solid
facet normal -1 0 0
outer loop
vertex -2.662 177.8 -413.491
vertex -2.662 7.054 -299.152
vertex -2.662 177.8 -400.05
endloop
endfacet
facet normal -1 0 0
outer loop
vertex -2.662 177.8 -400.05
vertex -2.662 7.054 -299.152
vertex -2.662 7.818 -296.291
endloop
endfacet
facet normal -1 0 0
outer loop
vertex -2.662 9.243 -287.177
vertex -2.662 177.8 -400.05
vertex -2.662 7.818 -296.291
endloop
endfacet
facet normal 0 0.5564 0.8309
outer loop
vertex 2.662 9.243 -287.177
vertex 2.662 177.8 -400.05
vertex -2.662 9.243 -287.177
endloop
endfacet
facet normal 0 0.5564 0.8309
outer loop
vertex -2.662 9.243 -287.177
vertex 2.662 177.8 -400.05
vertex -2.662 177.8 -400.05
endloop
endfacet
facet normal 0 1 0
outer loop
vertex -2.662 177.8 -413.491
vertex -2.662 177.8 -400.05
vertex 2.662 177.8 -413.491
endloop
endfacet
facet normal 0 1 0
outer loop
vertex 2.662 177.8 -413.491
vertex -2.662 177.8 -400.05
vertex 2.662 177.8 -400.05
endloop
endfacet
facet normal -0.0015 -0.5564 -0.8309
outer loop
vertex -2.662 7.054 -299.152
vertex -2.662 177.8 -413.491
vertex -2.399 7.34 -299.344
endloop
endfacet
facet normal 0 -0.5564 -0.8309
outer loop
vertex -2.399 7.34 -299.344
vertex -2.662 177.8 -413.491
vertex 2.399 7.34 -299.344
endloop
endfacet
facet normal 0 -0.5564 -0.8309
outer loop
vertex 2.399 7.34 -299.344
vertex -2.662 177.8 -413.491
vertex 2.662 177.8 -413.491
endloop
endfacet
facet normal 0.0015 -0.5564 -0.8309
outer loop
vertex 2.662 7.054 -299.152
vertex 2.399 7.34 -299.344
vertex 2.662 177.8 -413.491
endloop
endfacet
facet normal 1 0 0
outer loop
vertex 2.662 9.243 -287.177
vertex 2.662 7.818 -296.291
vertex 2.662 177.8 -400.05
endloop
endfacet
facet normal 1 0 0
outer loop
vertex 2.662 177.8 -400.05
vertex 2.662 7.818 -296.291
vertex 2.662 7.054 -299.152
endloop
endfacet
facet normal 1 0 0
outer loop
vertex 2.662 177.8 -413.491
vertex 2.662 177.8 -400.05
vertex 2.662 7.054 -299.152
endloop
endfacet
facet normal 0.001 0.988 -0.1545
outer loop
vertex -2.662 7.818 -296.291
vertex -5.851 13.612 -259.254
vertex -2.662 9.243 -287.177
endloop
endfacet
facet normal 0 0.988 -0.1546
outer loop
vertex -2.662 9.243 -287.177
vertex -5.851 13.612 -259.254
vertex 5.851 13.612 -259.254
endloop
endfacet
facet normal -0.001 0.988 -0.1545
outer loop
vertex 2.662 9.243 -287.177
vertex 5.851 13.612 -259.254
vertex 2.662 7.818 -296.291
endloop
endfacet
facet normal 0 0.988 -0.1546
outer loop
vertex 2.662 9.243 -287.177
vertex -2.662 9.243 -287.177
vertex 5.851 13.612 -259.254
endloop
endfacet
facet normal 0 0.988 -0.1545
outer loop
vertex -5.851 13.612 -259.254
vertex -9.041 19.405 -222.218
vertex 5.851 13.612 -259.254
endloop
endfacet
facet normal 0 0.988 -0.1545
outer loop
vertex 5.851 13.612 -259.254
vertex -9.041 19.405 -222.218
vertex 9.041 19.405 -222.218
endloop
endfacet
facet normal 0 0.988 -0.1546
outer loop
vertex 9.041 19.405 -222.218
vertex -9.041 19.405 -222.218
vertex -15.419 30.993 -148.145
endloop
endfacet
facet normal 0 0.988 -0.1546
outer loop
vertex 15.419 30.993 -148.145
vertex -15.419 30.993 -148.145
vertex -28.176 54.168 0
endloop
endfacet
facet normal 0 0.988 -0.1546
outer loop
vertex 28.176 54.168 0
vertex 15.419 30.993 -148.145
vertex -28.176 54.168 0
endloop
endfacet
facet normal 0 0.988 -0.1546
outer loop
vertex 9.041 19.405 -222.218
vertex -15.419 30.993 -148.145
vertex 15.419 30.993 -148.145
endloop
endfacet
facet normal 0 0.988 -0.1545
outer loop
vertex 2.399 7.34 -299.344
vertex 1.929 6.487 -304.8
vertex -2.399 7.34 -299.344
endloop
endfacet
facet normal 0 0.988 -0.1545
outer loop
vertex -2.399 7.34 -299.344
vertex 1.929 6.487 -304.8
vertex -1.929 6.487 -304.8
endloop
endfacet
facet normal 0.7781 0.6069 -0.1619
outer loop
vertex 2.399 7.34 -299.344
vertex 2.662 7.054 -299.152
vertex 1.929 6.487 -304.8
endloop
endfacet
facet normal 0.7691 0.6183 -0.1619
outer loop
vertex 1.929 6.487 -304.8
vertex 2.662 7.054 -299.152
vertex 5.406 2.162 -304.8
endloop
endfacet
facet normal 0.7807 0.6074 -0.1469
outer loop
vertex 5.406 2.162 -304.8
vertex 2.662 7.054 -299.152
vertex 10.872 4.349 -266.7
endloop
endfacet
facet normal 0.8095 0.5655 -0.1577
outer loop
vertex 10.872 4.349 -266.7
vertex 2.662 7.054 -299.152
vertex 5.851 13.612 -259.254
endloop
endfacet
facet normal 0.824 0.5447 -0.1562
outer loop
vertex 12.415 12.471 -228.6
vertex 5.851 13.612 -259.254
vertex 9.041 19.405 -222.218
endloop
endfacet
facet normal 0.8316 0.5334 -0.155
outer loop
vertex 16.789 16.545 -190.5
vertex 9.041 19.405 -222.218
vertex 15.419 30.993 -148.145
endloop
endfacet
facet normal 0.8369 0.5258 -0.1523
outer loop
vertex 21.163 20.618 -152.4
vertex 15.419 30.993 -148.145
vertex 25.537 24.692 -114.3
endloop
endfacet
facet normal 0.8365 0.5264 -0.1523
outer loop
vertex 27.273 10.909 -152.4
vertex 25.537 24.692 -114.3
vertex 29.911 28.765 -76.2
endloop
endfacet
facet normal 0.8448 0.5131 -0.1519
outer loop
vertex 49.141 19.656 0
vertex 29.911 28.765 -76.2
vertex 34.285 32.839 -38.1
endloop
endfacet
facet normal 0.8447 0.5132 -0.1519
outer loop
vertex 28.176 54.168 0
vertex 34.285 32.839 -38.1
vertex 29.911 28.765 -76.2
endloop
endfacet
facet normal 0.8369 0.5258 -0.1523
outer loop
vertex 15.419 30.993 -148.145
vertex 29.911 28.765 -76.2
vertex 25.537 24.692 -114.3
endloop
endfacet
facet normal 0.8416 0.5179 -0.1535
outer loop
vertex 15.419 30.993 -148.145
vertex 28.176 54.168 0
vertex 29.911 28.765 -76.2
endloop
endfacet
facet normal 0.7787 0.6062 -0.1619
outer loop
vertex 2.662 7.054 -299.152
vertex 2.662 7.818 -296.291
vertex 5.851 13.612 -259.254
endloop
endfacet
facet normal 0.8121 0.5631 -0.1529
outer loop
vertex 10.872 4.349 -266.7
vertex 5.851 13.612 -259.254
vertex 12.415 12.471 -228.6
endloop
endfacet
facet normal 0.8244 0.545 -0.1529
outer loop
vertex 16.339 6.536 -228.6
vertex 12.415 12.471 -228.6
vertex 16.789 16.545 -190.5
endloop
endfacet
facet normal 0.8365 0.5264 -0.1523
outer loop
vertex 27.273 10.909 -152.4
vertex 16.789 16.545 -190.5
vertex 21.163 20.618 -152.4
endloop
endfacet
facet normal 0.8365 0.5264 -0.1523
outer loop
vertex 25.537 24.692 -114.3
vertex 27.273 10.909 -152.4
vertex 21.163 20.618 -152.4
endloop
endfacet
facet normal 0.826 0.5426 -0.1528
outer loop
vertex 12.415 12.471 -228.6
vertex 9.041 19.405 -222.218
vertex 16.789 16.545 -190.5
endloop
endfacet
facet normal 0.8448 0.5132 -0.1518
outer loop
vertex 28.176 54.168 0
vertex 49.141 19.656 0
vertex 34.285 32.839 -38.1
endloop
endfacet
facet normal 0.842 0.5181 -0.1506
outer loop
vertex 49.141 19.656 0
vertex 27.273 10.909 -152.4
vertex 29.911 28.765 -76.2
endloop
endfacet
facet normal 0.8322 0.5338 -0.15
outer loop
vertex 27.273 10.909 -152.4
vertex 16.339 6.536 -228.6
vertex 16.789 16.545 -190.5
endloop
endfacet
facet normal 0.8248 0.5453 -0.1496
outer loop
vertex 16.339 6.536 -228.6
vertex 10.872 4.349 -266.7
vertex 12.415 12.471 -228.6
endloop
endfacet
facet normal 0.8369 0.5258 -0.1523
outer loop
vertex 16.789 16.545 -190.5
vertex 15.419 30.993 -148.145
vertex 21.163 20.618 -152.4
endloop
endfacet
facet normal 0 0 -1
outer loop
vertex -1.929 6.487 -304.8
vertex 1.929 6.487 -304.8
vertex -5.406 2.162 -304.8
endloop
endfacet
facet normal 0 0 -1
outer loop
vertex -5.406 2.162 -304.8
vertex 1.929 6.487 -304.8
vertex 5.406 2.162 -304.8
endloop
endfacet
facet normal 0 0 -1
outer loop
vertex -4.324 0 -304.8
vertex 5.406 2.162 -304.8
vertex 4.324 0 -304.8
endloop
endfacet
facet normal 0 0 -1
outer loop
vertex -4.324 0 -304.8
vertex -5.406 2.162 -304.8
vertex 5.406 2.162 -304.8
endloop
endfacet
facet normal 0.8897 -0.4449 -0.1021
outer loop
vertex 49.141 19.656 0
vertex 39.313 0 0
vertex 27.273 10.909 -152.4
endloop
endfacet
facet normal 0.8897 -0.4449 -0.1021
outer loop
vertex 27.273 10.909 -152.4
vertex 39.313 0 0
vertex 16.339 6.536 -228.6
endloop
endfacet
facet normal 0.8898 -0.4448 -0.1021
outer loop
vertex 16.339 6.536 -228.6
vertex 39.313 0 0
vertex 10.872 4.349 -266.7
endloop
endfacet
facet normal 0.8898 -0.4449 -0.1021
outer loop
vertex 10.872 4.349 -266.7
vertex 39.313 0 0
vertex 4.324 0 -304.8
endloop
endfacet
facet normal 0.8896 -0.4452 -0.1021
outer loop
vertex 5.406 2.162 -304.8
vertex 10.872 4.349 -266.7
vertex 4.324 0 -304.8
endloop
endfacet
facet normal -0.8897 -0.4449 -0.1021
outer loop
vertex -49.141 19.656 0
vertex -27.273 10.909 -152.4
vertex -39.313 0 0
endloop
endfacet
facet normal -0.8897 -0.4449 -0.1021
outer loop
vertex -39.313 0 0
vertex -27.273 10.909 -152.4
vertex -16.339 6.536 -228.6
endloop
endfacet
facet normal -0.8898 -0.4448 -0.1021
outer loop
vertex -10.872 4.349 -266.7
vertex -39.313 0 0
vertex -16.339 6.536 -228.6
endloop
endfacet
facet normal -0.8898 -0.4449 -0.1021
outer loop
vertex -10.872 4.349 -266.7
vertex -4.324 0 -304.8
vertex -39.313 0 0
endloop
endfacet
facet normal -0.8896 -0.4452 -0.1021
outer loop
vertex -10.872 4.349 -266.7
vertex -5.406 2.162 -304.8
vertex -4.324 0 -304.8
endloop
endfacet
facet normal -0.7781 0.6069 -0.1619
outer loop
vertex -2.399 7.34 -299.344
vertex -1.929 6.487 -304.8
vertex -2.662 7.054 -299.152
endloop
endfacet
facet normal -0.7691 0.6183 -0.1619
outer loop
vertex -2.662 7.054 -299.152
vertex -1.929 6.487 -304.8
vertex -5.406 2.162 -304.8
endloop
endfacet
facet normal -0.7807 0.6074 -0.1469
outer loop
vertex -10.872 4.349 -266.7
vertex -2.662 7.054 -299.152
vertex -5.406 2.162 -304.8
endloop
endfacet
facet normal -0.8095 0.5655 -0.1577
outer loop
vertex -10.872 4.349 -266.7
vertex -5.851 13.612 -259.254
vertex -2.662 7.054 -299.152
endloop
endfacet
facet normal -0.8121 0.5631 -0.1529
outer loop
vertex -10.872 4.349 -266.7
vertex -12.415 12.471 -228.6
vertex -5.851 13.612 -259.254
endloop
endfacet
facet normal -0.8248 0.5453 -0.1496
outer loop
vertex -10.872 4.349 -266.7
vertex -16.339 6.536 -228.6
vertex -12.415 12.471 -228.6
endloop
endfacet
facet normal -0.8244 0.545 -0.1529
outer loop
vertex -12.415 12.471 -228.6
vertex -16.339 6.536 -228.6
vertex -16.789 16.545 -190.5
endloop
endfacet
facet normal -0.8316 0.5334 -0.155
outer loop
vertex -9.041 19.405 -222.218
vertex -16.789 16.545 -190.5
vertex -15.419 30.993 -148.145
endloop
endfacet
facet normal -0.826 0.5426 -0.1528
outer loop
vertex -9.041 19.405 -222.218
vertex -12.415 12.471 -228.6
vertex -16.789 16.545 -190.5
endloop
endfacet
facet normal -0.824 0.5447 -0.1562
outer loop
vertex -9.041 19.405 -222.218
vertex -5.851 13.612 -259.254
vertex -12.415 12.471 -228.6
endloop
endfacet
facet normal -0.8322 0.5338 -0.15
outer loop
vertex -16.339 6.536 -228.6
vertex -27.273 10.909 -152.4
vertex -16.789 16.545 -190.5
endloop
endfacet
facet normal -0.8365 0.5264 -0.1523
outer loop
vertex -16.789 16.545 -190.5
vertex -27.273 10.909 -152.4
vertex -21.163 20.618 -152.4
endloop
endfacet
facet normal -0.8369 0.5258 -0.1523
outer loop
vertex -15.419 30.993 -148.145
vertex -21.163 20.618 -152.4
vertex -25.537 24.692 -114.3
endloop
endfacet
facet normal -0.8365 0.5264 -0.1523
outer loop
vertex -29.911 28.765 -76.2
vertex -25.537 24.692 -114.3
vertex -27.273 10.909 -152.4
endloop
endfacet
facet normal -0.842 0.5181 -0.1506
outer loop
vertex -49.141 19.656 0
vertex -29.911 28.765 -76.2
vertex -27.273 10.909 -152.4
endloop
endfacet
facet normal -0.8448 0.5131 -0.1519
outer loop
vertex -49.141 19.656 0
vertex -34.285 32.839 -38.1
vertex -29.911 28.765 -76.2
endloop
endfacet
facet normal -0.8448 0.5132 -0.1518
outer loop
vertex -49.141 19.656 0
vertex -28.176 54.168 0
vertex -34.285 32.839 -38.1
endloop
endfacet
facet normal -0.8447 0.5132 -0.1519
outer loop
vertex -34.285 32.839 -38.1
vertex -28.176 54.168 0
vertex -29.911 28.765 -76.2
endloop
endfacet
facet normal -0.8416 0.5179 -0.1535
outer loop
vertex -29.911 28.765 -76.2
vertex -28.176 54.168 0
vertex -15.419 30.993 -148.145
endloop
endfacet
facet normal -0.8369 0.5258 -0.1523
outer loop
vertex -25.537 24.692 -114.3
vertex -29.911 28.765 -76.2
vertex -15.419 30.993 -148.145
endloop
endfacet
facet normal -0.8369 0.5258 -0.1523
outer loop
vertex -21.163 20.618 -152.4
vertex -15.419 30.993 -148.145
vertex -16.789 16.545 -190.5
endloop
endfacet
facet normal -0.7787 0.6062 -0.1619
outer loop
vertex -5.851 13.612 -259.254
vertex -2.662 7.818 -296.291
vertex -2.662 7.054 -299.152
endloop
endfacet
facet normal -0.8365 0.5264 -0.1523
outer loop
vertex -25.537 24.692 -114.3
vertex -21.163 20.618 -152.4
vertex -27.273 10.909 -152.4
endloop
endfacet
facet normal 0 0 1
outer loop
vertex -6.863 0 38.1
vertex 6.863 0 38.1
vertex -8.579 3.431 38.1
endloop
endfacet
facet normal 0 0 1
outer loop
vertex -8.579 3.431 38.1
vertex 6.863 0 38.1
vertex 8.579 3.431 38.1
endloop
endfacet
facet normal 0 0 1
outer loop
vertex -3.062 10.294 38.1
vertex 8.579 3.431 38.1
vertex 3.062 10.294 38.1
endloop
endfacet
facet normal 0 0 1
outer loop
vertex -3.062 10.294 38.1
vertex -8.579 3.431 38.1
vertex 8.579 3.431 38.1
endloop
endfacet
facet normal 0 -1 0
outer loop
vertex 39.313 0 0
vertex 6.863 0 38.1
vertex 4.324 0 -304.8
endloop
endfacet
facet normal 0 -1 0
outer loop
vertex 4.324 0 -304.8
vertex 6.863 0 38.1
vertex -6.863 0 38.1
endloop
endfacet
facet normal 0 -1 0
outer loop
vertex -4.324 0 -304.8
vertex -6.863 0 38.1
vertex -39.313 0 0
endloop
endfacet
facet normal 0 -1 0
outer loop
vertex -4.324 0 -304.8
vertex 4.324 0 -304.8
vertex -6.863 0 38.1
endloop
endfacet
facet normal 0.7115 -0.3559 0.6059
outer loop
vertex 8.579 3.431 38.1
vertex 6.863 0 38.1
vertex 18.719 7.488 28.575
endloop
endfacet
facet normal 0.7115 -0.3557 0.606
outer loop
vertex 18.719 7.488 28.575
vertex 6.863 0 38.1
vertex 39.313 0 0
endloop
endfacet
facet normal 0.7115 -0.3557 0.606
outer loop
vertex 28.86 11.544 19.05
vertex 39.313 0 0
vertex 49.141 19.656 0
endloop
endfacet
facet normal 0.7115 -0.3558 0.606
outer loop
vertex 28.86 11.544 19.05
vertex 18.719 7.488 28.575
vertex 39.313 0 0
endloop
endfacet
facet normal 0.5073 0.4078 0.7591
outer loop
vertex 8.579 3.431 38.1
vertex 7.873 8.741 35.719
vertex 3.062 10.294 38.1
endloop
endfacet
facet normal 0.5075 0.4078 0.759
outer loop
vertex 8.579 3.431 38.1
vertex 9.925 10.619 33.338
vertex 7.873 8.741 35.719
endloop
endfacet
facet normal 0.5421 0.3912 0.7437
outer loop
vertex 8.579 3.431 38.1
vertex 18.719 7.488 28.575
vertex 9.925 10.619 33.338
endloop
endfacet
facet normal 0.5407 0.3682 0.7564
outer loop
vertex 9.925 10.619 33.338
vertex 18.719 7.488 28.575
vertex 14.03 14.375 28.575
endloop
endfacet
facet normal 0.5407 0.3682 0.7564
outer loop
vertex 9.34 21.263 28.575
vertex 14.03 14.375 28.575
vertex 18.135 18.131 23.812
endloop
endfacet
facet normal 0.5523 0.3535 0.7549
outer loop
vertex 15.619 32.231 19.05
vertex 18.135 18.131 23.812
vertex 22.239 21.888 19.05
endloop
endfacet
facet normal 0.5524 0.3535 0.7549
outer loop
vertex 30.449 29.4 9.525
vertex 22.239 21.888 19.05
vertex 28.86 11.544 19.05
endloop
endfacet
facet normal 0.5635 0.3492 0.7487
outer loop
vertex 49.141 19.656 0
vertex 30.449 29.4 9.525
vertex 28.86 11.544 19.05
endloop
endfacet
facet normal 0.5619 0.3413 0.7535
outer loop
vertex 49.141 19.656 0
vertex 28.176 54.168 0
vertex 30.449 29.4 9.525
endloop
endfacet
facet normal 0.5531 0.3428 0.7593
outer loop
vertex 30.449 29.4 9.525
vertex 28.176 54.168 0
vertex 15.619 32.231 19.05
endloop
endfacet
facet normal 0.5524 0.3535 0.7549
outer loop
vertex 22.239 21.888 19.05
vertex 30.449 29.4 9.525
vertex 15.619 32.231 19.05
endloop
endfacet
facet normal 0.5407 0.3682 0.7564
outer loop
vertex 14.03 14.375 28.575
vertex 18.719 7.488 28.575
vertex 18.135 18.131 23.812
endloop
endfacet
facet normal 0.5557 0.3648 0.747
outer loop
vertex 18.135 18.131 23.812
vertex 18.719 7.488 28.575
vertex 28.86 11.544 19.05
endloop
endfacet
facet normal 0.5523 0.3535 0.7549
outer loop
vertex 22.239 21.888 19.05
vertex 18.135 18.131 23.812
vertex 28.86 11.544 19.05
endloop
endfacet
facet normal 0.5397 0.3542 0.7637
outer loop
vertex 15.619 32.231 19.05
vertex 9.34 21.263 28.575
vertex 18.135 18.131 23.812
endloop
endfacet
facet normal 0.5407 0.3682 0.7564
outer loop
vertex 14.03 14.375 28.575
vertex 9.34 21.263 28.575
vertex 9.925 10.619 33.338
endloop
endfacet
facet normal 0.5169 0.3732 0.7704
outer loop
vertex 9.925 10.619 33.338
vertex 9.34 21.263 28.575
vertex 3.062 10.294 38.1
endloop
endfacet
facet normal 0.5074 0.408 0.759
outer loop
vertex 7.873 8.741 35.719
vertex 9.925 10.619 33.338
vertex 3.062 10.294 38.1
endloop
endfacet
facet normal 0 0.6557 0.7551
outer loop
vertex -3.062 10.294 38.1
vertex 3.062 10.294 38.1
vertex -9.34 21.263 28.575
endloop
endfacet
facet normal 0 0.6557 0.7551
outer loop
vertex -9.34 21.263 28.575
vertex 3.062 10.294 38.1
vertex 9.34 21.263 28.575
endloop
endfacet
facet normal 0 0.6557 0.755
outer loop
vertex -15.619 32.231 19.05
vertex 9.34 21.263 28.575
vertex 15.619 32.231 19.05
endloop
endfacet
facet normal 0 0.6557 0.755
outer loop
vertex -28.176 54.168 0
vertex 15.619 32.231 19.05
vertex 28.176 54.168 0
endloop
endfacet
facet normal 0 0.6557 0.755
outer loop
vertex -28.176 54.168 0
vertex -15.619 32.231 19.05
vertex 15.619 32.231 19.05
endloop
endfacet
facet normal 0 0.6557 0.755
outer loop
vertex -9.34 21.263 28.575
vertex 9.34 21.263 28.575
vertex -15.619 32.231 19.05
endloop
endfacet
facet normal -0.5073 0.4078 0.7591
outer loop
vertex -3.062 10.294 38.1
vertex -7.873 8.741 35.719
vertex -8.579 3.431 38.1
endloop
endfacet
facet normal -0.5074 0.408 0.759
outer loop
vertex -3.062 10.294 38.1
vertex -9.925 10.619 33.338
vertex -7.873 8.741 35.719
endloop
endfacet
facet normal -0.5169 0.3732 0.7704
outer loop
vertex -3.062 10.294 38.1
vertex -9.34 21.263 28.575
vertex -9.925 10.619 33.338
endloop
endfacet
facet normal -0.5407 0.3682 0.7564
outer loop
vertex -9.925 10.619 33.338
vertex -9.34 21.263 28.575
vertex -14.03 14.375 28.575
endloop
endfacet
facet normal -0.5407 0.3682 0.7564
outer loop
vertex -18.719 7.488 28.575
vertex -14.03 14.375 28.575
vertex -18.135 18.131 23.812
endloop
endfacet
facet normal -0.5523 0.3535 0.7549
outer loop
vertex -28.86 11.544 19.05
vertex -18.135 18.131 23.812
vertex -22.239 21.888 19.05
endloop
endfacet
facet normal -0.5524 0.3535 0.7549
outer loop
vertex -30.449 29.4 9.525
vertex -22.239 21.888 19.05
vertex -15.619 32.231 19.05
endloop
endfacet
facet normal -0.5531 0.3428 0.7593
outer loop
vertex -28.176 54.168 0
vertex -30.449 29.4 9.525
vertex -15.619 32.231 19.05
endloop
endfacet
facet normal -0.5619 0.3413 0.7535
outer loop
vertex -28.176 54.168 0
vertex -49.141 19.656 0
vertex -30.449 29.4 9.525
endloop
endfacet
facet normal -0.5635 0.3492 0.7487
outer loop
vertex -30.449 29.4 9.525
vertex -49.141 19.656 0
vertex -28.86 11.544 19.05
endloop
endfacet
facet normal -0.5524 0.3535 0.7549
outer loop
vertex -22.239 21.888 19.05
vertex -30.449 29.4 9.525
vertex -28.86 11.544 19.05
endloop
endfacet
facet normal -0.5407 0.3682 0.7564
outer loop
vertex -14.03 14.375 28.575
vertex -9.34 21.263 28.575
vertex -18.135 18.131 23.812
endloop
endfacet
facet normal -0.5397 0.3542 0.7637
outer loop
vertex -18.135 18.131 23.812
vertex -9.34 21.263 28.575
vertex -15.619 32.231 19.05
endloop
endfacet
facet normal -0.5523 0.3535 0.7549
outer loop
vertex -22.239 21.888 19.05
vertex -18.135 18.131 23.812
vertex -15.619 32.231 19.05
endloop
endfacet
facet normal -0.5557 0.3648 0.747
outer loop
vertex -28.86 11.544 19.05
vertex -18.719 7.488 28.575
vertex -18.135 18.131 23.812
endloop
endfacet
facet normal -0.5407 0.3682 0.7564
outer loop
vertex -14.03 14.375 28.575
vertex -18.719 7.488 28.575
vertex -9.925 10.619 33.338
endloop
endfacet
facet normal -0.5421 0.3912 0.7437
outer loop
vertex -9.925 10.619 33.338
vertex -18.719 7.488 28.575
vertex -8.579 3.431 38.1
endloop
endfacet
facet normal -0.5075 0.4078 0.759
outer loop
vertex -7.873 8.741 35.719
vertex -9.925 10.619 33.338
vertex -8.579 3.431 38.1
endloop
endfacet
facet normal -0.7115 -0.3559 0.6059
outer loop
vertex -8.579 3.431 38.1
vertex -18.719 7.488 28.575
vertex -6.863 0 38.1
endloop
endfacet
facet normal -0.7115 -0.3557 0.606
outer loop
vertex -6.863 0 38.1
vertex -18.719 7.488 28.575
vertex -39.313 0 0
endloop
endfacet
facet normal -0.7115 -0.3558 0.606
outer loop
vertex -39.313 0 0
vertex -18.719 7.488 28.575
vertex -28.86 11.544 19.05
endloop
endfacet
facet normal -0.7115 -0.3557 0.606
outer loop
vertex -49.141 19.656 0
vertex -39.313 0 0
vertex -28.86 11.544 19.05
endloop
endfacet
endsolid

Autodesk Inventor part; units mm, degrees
ref_plane "YZ Plane" through (0, 0, 0) normal (1, 0, 0) x (0, 1, 0)
ref_plane "XZ Plane" through (0, 0, 0) normal (0, 1, 0) x (-1, 0, 0)
sketch "Sketch1" plane through (0, 0, 0) normal (0, 0, 1) x (1, 0, 0)
  line L0 (0, 0) -> (39.3128, 0)
  line L1 (39.3128, 0) -> (49.1411, 19.6564)
  line L2 (49.1411, 19.6564) -> (28.1759, 54.1679)
  line L3 (0, 54.1679) -> (28.1759, 54.1679)
  line L4 (0, 54.1679) -> (0, 0) construction
  line L5 (0, 0) -> (-39.3128, 0)
  line L6 (-39.3128, 0) -> (-49.1411, 19.6564)
  line L7 (-49.1411, 19.6564) -> (-28.1759, 54.1679)
  line L8 (0, 54.1679) -> (-28.1759, 54.1679)
ref_plane "Work Plane1" through (0, 0, -304.8) normal (0, 0, 1) x (1, 0, 0)
sketch "Sketch2" plane through (0, 0, -304.8) normal (0, 0, 1) x (1, 0, 0)
  line L0 (0, 0) -> (4.3244, 0)
  line L1 (4.3244, 0) -> (5.4055, 2.1622)
  line L2 (5.4055, 2.1622) -> (1.9294, 6.4866)
  line L3 (0, 6.4866) -> (1.9294, 6.4866)
  line L4 (0, 6.4866) -> (0, 0) construction
  line L5 (0, 0) -> (-4.3244, 0)
  line L6 (-4.3244, 0) -> (-5.4055, 2.1622)
  line L7 (-5.4055, 2.1622) -> (-1.9294, 6.4866)
  line L8 (0, 6.4866) -> (-1.9294, 6.4866)
ref_plane "Work Plane2" through (0, 0, 38.1) normal (0, 0, 1) x (1, 0, 0)
sketch "Sketch3" plane through (0, 0, 38.1) normal (0, 0, 1) x (1, 0, 0)
  line L0 (0, 0) -> (6.8628, 0)
  line L1 (6.8628, 0) -> (8.5786, 3.4314)
  line L2 (8.5786, 3.4314) -> (3.062, 10.2943)
  line L3 (0, 10.2943) -> (3.062, 10.2943)
  line L4 (0, 10.2943) -> (0, 0) construction
  line L5 (0, 0) -> (-6.8628, 0)
  line L6 (-6.8628, 0) -> (-8.5786, 3.4314)
  line L7 (-8.5786, 3.4314) -> (-3.062, 10.2943)
  line L8 (0, 10.2943) -> (-3.062, 10.2943)
loft "Loft1" add profiles "Sketch3", "Sketch1"
loft "Loft2" add profiles "Sketch1", "Sketch2"
sketch "Sketch4" plane through (-6.8628, 0, 38.1) normal (0, -1, 0) x (1, 0, 0)
  line L0 (11.1873, -342.9) -> (2.5384, -342.9) construction
  line L1 (6.8628, -342.9) -> (6.8628, 0) construction
  line L2 (6.8628, -332.5282) -> (9.525, -332.5282)
  line L3 (9.525, -332.5282) -> (9.525, -319.0875)
  line L4 (9.525, -319.0875) -> (6.8628, -319.0875)
  line L5 (6.8628, -332.5282) -> (4.2007, -332.5282)
  line L6 (4.2007, -332.5282) -> (4.2007, -319.0875)
  line L7 (4.2007, -319.0875) -> (6.8628, -319.0875)
  point P0 (6.8628, -38.1)
ref_plane "Work Plane3" through (-6.8628, 177.8, 38.1) normal (0, -1, 0) x (1, 0, 0)
sketch "Sketch5" plane through (-6.8628, 177.8, 38.1) normal (0, -1, 0) x (1, 0, 0)
  line L0 (6.8628, -451.5907) -> (9.525, -451.5907)
  line L1 (9.525, -451.5907) -> (9.525, -438.15)
  line L2 (9.525, -438.15) -> (6.8628, -438.15)
  line L3 (6.8628, -451.5907) -> (4.2007, -451.5907)
  line L4 (4.2007, -451.5907) -> (4.2007, -438.15)
  line L5 (4.2007, -438.15) -> (6.8628, -438.15)
  line L6 (9.9248, 0) -> (3.8008, 0) construction
  line L7 (6.8628, 0) -> (6.8628, -342.9) construction
  point P0 (6.8628, -38.1)
loft "Loft3" add profiles "Sketch4", "Sketch5"
properties part number "Buggy 2"
